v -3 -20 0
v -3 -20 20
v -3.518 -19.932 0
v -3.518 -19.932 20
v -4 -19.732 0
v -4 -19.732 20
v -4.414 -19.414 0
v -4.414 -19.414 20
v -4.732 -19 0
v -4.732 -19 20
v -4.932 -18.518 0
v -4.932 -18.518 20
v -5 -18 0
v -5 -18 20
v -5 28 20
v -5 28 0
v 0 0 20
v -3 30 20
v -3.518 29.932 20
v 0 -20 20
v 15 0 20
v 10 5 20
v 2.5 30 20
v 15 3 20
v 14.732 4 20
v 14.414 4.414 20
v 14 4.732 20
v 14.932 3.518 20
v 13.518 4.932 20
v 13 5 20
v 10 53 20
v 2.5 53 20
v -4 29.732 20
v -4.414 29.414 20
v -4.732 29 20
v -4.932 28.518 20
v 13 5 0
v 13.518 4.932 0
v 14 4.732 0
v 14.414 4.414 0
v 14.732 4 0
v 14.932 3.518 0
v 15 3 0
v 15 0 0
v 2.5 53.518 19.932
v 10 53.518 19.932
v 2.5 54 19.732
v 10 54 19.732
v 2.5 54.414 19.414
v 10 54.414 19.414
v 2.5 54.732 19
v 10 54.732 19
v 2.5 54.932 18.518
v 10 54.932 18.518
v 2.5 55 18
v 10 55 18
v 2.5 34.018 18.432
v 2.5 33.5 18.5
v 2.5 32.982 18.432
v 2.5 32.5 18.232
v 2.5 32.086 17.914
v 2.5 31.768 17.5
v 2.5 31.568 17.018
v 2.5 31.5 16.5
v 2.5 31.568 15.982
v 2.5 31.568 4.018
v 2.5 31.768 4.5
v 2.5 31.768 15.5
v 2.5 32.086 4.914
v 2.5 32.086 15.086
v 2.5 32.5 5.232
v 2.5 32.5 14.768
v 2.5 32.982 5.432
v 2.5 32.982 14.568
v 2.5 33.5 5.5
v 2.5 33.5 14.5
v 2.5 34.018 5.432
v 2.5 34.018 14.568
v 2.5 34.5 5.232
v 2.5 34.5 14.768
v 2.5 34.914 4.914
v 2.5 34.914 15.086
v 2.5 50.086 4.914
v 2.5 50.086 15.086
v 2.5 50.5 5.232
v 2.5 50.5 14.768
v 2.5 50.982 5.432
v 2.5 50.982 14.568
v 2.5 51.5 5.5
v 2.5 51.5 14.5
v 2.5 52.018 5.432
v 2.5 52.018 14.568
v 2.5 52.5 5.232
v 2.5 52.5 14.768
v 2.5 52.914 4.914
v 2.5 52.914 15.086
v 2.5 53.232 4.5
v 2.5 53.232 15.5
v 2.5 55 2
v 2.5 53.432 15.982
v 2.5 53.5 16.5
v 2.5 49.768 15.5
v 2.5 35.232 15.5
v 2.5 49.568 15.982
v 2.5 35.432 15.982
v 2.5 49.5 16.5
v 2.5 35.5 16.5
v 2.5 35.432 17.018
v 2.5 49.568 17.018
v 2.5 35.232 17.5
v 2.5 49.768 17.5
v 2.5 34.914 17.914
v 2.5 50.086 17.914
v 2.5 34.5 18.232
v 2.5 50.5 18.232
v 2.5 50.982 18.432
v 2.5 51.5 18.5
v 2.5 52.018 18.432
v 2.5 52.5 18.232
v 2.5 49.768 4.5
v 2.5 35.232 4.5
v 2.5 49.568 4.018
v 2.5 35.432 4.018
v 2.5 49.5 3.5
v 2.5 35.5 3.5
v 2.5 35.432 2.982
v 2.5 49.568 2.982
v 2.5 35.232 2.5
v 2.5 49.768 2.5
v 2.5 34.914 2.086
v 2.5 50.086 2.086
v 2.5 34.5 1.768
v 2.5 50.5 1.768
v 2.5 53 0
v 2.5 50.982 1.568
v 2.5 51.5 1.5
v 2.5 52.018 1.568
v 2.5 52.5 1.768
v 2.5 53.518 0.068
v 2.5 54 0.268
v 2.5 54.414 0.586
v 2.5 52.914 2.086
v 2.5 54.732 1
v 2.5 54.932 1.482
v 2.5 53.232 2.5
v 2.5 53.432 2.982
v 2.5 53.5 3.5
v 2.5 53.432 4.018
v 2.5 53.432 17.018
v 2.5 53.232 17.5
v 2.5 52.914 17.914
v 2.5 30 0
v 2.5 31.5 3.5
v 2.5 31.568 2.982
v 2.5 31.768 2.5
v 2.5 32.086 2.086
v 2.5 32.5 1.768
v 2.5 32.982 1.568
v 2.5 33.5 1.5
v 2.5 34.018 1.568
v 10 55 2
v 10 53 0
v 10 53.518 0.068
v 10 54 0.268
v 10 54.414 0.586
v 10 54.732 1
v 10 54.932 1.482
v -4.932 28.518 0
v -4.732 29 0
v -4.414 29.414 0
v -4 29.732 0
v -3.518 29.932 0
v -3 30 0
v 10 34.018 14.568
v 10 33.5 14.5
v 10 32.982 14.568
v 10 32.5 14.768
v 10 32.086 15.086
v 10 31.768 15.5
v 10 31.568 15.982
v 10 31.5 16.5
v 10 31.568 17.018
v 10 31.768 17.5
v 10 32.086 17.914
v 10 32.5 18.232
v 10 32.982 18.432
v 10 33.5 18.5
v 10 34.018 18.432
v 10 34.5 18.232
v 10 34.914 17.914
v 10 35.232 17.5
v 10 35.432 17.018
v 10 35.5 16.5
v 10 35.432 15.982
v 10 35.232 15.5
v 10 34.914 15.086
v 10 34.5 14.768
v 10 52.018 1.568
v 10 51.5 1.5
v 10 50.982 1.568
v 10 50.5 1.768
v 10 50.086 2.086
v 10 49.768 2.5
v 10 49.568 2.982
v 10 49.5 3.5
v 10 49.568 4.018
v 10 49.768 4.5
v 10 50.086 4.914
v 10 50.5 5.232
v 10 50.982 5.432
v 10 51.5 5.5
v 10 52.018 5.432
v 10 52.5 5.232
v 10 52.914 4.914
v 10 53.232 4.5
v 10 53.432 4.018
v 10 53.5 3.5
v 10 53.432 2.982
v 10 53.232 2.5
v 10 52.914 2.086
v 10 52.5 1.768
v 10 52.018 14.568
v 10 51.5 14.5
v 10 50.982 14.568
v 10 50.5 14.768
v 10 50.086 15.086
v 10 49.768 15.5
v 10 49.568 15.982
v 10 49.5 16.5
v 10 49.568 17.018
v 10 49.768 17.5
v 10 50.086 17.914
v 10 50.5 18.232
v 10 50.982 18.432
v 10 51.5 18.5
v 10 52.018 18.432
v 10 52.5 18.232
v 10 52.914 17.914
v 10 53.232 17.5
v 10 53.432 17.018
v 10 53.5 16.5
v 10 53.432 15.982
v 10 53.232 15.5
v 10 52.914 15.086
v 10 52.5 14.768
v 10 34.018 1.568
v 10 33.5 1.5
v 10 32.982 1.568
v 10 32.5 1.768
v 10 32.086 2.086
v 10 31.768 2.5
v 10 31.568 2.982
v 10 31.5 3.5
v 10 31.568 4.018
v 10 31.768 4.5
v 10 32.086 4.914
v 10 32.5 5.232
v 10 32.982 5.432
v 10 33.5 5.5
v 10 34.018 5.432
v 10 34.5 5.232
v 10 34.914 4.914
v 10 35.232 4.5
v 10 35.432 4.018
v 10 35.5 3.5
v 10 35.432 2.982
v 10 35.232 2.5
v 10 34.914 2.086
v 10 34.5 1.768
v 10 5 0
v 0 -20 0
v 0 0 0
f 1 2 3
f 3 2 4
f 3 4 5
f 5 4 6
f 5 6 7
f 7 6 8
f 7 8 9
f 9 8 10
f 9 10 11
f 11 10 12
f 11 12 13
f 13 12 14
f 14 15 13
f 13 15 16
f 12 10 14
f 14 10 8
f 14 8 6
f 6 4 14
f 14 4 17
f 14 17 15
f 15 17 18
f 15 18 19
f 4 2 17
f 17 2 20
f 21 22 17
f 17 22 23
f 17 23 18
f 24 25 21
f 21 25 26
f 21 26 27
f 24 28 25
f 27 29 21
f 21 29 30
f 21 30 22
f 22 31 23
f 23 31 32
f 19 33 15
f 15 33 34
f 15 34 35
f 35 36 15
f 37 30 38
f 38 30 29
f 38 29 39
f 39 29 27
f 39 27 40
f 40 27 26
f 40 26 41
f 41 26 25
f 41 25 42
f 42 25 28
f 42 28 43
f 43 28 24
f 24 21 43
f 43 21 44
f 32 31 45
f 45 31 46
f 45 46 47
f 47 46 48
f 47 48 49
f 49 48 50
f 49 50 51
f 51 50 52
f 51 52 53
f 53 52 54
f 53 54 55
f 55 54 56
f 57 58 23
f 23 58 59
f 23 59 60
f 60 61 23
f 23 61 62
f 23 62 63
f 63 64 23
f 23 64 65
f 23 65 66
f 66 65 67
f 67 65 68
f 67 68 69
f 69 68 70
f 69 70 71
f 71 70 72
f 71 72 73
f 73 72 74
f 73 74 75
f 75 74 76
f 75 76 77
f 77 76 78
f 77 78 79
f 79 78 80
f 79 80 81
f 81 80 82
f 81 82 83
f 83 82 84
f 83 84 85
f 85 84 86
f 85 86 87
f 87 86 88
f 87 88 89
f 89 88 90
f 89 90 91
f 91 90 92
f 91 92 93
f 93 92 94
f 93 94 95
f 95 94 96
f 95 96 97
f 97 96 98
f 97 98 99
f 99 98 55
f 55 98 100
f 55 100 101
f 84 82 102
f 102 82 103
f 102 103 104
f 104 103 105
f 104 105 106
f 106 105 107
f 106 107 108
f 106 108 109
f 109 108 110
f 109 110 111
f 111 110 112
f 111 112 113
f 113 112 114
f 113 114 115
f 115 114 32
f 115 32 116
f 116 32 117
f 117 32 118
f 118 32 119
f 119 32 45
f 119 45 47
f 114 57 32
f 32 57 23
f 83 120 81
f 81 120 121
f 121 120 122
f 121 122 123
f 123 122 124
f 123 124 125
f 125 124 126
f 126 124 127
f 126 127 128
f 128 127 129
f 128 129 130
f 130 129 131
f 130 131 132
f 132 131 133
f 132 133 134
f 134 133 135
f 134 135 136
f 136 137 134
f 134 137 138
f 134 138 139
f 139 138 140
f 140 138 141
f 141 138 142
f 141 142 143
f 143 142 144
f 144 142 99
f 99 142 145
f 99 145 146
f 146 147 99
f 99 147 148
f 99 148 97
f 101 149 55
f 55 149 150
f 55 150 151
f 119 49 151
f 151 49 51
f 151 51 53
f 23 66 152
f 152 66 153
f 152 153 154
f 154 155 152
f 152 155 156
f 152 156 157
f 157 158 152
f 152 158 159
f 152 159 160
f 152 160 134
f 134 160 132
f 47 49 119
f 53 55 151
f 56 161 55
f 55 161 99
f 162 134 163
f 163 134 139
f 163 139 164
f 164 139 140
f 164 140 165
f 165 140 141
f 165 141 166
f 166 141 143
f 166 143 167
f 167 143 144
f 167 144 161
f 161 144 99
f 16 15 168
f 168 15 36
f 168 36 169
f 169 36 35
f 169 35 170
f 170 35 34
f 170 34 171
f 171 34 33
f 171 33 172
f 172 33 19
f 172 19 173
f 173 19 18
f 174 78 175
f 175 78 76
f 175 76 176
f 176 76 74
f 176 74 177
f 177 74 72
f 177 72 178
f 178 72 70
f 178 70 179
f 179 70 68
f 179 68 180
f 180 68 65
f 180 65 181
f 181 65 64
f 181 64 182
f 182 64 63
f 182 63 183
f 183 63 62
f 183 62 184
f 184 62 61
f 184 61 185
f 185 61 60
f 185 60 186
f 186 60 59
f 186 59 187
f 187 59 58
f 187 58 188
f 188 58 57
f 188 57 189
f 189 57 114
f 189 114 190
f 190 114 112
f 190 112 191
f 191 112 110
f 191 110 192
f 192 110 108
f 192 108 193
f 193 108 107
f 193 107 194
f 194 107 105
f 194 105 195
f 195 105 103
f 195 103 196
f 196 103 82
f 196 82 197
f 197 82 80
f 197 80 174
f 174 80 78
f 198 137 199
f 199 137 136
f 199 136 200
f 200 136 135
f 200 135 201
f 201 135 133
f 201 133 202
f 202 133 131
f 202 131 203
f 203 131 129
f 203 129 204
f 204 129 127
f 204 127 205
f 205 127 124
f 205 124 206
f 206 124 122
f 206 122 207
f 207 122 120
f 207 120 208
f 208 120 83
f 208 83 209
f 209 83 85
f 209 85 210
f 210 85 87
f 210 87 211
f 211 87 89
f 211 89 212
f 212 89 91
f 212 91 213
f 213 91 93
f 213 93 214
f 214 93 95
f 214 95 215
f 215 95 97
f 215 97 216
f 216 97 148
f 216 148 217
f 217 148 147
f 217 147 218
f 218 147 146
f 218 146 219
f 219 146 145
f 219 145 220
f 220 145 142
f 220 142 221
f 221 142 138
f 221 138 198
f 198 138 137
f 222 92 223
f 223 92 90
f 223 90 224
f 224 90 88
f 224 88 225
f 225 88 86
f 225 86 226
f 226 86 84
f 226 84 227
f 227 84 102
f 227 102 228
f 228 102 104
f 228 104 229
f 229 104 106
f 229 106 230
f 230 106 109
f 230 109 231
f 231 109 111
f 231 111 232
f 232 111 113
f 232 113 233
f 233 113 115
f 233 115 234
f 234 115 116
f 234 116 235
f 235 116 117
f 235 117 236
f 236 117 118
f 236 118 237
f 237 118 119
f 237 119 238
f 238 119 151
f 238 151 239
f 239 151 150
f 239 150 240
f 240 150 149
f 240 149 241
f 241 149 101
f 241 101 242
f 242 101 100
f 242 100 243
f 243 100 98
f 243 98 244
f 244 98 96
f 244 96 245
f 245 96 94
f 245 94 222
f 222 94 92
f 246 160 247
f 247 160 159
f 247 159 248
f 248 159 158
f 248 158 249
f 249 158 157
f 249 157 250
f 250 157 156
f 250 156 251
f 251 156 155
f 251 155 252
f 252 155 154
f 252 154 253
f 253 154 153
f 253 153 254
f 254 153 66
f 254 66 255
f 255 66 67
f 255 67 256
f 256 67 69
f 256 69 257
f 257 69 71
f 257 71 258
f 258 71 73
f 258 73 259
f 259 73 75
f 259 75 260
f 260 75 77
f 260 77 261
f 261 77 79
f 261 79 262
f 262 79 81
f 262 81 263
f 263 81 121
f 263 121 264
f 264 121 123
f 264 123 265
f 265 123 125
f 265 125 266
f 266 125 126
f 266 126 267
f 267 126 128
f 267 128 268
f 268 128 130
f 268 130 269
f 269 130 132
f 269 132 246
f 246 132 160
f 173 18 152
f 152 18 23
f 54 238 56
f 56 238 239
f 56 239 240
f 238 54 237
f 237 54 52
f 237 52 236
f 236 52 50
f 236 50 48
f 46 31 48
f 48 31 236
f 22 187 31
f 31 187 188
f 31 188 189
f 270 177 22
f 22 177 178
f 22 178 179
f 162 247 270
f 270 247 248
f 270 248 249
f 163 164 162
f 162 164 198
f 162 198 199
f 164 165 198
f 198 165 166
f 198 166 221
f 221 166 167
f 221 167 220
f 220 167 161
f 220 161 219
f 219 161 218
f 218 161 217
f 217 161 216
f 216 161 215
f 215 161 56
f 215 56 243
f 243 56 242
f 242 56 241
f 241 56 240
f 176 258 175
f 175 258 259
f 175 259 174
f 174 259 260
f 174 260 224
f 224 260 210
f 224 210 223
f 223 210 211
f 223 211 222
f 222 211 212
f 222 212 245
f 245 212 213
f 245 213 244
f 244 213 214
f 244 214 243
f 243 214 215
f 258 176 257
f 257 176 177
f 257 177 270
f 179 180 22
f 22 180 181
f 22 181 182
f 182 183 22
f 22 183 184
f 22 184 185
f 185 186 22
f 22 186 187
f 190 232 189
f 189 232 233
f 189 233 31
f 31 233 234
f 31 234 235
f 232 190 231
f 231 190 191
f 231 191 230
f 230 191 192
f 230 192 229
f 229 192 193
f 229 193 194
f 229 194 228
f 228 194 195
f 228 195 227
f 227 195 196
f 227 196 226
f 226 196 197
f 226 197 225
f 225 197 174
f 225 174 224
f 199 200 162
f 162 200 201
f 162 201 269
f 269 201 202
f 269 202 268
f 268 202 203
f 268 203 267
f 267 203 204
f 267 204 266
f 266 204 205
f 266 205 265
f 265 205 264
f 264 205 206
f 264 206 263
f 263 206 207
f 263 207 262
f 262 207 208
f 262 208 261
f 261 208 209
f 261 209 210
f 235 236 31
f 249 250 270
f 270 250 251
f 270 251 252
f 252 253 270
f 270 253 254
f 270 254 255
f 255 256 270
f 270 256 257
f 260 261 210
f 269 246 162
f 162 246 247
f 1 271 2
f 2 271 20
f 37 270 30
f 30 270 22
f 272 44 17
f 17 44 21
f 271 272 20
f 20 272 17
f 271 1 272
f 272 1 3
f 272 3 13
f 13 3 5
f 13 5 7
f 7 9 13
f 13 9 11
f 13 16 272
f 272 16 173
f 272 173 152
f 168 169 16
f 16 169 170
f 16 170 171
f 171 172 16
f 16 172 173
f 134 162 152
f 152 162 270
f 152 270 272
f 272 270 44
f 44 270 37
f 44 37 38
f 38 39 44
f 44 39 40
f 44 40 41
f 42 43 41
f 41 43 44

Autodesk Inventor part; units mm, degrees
ref_plane "YZ Plane" through (0, 0, 0) normal (1, 0, 0) x (0, 1, 0)
ref_plane "XZ Plane" through (0, 0, 0) normal (0, 1, 0) x (-1, 0, 0)
ref_plane "XY Plane" through (0, 0, 0) normal (0, 0, 1) x (1, 0, 0)
sketch "Sketch1" plane through (0, 0, 0) normal (0, 0, 1) x (1, 0, 0)
  line L0 (0, -20) -> (0, 0)
  line L1 (0, 0) -> (15, 0)
  line L2 (-5, -20) -> (-5, 5)
  line L3 (-5, 5) -> (15, 5)
  line L4 (0, -20) -> (-5, -20)
  line L5 (15, 5) -> (15, 0)
  dimension "d0" = 15
  dimension "d1" = 20
  dimension "d2" = 5
extrude "Extrusion1" add sketch "Sketch1" along normal blind 20
sketch "Sketch2" plane through (-5, 5, 0) normal (0, 1, 0) x (1, 0, 0)
  line L0 (0, 0) -> (20, 0) projected
  line L1 (20, -20) -> (0, -20) projected
  line L2 (0, 0) -> (0, -20)
  line L3 (15, 0) -> (15, -20)
  line L4 (0, 0) -> (15, 0)
  line L5 (20, 0) -> (5, 0) projected
  line L6 (15, -20) -> (0, -20)
  line L7 (0, 0) -> (0, -20) projected
  dimension "d7" = 0
  dimension "d8" = 15
extrude "Extrusion2" add sketch "Sketch2" along normal blind 25
sketch "Sketch3" plane through (-5, 30, 0) normal (0, 1, 0) x (1, 0, 0)
  line L0 (15, 0) -> (15, -20) projected
  line L1 (15, 0) -> (7.5, 0)
  line L2 (7.5, 0) -> (7.5, -20)
  line L3 (7.5, -20) -> (15, -20)
  line L4 (15, -20) -> (15, 0)
  point P0 (5, 0)
  dimension "d11" = 7.5
  dimension "d12" = 20
extrude "Extrusion3" add sketch "Sketch3" along normal blind 25
sketch "Sketch4" plane through (2.5, 30, 0) normal (-1, 0, 0) x (0, 0, 1)
  line L0 (0, 25) -> (20, 25) projected
  line L1 (10, 25) -> (10, 0)
  line L2 (20, 0) -> (0, 0) projected
  line L3 (0, 0) -> (0, 25) projected
  line L4 (0, 12.5) -> (20, 12.5)
  line L5 (20, -25) -> (20, 25) projected
  circle A0 centre (3.5, 21.5) radius 2
  circle A1 centre (16.5, 21.5) radius 2
  circle A2 centre (3.5, 3.5) radius 2
  circle A3 centre (16.5, 3.5) radius 2
  point P0 (0, -30)
  dimension "d15" = 4
  dimension "d16" = 3.5
  dimension "d17" = 3.5
hole "Hole1" at (2.5, 51.5, 3.5) at (2.5, 51.5, 16.5) at (2.5, 33.5, 16.5) at (2.5, 33.5, 3.5) direction (1, 0, 0) diameter 4 end through all
fillet "Fillet1" radius 2 5 edges at (-5, 30, 10) (6.25, 55, 0) (6.25, 55, 20) (15, 5, 10) (-5, -20, 10)
properties part number "Esteira - Carro"
